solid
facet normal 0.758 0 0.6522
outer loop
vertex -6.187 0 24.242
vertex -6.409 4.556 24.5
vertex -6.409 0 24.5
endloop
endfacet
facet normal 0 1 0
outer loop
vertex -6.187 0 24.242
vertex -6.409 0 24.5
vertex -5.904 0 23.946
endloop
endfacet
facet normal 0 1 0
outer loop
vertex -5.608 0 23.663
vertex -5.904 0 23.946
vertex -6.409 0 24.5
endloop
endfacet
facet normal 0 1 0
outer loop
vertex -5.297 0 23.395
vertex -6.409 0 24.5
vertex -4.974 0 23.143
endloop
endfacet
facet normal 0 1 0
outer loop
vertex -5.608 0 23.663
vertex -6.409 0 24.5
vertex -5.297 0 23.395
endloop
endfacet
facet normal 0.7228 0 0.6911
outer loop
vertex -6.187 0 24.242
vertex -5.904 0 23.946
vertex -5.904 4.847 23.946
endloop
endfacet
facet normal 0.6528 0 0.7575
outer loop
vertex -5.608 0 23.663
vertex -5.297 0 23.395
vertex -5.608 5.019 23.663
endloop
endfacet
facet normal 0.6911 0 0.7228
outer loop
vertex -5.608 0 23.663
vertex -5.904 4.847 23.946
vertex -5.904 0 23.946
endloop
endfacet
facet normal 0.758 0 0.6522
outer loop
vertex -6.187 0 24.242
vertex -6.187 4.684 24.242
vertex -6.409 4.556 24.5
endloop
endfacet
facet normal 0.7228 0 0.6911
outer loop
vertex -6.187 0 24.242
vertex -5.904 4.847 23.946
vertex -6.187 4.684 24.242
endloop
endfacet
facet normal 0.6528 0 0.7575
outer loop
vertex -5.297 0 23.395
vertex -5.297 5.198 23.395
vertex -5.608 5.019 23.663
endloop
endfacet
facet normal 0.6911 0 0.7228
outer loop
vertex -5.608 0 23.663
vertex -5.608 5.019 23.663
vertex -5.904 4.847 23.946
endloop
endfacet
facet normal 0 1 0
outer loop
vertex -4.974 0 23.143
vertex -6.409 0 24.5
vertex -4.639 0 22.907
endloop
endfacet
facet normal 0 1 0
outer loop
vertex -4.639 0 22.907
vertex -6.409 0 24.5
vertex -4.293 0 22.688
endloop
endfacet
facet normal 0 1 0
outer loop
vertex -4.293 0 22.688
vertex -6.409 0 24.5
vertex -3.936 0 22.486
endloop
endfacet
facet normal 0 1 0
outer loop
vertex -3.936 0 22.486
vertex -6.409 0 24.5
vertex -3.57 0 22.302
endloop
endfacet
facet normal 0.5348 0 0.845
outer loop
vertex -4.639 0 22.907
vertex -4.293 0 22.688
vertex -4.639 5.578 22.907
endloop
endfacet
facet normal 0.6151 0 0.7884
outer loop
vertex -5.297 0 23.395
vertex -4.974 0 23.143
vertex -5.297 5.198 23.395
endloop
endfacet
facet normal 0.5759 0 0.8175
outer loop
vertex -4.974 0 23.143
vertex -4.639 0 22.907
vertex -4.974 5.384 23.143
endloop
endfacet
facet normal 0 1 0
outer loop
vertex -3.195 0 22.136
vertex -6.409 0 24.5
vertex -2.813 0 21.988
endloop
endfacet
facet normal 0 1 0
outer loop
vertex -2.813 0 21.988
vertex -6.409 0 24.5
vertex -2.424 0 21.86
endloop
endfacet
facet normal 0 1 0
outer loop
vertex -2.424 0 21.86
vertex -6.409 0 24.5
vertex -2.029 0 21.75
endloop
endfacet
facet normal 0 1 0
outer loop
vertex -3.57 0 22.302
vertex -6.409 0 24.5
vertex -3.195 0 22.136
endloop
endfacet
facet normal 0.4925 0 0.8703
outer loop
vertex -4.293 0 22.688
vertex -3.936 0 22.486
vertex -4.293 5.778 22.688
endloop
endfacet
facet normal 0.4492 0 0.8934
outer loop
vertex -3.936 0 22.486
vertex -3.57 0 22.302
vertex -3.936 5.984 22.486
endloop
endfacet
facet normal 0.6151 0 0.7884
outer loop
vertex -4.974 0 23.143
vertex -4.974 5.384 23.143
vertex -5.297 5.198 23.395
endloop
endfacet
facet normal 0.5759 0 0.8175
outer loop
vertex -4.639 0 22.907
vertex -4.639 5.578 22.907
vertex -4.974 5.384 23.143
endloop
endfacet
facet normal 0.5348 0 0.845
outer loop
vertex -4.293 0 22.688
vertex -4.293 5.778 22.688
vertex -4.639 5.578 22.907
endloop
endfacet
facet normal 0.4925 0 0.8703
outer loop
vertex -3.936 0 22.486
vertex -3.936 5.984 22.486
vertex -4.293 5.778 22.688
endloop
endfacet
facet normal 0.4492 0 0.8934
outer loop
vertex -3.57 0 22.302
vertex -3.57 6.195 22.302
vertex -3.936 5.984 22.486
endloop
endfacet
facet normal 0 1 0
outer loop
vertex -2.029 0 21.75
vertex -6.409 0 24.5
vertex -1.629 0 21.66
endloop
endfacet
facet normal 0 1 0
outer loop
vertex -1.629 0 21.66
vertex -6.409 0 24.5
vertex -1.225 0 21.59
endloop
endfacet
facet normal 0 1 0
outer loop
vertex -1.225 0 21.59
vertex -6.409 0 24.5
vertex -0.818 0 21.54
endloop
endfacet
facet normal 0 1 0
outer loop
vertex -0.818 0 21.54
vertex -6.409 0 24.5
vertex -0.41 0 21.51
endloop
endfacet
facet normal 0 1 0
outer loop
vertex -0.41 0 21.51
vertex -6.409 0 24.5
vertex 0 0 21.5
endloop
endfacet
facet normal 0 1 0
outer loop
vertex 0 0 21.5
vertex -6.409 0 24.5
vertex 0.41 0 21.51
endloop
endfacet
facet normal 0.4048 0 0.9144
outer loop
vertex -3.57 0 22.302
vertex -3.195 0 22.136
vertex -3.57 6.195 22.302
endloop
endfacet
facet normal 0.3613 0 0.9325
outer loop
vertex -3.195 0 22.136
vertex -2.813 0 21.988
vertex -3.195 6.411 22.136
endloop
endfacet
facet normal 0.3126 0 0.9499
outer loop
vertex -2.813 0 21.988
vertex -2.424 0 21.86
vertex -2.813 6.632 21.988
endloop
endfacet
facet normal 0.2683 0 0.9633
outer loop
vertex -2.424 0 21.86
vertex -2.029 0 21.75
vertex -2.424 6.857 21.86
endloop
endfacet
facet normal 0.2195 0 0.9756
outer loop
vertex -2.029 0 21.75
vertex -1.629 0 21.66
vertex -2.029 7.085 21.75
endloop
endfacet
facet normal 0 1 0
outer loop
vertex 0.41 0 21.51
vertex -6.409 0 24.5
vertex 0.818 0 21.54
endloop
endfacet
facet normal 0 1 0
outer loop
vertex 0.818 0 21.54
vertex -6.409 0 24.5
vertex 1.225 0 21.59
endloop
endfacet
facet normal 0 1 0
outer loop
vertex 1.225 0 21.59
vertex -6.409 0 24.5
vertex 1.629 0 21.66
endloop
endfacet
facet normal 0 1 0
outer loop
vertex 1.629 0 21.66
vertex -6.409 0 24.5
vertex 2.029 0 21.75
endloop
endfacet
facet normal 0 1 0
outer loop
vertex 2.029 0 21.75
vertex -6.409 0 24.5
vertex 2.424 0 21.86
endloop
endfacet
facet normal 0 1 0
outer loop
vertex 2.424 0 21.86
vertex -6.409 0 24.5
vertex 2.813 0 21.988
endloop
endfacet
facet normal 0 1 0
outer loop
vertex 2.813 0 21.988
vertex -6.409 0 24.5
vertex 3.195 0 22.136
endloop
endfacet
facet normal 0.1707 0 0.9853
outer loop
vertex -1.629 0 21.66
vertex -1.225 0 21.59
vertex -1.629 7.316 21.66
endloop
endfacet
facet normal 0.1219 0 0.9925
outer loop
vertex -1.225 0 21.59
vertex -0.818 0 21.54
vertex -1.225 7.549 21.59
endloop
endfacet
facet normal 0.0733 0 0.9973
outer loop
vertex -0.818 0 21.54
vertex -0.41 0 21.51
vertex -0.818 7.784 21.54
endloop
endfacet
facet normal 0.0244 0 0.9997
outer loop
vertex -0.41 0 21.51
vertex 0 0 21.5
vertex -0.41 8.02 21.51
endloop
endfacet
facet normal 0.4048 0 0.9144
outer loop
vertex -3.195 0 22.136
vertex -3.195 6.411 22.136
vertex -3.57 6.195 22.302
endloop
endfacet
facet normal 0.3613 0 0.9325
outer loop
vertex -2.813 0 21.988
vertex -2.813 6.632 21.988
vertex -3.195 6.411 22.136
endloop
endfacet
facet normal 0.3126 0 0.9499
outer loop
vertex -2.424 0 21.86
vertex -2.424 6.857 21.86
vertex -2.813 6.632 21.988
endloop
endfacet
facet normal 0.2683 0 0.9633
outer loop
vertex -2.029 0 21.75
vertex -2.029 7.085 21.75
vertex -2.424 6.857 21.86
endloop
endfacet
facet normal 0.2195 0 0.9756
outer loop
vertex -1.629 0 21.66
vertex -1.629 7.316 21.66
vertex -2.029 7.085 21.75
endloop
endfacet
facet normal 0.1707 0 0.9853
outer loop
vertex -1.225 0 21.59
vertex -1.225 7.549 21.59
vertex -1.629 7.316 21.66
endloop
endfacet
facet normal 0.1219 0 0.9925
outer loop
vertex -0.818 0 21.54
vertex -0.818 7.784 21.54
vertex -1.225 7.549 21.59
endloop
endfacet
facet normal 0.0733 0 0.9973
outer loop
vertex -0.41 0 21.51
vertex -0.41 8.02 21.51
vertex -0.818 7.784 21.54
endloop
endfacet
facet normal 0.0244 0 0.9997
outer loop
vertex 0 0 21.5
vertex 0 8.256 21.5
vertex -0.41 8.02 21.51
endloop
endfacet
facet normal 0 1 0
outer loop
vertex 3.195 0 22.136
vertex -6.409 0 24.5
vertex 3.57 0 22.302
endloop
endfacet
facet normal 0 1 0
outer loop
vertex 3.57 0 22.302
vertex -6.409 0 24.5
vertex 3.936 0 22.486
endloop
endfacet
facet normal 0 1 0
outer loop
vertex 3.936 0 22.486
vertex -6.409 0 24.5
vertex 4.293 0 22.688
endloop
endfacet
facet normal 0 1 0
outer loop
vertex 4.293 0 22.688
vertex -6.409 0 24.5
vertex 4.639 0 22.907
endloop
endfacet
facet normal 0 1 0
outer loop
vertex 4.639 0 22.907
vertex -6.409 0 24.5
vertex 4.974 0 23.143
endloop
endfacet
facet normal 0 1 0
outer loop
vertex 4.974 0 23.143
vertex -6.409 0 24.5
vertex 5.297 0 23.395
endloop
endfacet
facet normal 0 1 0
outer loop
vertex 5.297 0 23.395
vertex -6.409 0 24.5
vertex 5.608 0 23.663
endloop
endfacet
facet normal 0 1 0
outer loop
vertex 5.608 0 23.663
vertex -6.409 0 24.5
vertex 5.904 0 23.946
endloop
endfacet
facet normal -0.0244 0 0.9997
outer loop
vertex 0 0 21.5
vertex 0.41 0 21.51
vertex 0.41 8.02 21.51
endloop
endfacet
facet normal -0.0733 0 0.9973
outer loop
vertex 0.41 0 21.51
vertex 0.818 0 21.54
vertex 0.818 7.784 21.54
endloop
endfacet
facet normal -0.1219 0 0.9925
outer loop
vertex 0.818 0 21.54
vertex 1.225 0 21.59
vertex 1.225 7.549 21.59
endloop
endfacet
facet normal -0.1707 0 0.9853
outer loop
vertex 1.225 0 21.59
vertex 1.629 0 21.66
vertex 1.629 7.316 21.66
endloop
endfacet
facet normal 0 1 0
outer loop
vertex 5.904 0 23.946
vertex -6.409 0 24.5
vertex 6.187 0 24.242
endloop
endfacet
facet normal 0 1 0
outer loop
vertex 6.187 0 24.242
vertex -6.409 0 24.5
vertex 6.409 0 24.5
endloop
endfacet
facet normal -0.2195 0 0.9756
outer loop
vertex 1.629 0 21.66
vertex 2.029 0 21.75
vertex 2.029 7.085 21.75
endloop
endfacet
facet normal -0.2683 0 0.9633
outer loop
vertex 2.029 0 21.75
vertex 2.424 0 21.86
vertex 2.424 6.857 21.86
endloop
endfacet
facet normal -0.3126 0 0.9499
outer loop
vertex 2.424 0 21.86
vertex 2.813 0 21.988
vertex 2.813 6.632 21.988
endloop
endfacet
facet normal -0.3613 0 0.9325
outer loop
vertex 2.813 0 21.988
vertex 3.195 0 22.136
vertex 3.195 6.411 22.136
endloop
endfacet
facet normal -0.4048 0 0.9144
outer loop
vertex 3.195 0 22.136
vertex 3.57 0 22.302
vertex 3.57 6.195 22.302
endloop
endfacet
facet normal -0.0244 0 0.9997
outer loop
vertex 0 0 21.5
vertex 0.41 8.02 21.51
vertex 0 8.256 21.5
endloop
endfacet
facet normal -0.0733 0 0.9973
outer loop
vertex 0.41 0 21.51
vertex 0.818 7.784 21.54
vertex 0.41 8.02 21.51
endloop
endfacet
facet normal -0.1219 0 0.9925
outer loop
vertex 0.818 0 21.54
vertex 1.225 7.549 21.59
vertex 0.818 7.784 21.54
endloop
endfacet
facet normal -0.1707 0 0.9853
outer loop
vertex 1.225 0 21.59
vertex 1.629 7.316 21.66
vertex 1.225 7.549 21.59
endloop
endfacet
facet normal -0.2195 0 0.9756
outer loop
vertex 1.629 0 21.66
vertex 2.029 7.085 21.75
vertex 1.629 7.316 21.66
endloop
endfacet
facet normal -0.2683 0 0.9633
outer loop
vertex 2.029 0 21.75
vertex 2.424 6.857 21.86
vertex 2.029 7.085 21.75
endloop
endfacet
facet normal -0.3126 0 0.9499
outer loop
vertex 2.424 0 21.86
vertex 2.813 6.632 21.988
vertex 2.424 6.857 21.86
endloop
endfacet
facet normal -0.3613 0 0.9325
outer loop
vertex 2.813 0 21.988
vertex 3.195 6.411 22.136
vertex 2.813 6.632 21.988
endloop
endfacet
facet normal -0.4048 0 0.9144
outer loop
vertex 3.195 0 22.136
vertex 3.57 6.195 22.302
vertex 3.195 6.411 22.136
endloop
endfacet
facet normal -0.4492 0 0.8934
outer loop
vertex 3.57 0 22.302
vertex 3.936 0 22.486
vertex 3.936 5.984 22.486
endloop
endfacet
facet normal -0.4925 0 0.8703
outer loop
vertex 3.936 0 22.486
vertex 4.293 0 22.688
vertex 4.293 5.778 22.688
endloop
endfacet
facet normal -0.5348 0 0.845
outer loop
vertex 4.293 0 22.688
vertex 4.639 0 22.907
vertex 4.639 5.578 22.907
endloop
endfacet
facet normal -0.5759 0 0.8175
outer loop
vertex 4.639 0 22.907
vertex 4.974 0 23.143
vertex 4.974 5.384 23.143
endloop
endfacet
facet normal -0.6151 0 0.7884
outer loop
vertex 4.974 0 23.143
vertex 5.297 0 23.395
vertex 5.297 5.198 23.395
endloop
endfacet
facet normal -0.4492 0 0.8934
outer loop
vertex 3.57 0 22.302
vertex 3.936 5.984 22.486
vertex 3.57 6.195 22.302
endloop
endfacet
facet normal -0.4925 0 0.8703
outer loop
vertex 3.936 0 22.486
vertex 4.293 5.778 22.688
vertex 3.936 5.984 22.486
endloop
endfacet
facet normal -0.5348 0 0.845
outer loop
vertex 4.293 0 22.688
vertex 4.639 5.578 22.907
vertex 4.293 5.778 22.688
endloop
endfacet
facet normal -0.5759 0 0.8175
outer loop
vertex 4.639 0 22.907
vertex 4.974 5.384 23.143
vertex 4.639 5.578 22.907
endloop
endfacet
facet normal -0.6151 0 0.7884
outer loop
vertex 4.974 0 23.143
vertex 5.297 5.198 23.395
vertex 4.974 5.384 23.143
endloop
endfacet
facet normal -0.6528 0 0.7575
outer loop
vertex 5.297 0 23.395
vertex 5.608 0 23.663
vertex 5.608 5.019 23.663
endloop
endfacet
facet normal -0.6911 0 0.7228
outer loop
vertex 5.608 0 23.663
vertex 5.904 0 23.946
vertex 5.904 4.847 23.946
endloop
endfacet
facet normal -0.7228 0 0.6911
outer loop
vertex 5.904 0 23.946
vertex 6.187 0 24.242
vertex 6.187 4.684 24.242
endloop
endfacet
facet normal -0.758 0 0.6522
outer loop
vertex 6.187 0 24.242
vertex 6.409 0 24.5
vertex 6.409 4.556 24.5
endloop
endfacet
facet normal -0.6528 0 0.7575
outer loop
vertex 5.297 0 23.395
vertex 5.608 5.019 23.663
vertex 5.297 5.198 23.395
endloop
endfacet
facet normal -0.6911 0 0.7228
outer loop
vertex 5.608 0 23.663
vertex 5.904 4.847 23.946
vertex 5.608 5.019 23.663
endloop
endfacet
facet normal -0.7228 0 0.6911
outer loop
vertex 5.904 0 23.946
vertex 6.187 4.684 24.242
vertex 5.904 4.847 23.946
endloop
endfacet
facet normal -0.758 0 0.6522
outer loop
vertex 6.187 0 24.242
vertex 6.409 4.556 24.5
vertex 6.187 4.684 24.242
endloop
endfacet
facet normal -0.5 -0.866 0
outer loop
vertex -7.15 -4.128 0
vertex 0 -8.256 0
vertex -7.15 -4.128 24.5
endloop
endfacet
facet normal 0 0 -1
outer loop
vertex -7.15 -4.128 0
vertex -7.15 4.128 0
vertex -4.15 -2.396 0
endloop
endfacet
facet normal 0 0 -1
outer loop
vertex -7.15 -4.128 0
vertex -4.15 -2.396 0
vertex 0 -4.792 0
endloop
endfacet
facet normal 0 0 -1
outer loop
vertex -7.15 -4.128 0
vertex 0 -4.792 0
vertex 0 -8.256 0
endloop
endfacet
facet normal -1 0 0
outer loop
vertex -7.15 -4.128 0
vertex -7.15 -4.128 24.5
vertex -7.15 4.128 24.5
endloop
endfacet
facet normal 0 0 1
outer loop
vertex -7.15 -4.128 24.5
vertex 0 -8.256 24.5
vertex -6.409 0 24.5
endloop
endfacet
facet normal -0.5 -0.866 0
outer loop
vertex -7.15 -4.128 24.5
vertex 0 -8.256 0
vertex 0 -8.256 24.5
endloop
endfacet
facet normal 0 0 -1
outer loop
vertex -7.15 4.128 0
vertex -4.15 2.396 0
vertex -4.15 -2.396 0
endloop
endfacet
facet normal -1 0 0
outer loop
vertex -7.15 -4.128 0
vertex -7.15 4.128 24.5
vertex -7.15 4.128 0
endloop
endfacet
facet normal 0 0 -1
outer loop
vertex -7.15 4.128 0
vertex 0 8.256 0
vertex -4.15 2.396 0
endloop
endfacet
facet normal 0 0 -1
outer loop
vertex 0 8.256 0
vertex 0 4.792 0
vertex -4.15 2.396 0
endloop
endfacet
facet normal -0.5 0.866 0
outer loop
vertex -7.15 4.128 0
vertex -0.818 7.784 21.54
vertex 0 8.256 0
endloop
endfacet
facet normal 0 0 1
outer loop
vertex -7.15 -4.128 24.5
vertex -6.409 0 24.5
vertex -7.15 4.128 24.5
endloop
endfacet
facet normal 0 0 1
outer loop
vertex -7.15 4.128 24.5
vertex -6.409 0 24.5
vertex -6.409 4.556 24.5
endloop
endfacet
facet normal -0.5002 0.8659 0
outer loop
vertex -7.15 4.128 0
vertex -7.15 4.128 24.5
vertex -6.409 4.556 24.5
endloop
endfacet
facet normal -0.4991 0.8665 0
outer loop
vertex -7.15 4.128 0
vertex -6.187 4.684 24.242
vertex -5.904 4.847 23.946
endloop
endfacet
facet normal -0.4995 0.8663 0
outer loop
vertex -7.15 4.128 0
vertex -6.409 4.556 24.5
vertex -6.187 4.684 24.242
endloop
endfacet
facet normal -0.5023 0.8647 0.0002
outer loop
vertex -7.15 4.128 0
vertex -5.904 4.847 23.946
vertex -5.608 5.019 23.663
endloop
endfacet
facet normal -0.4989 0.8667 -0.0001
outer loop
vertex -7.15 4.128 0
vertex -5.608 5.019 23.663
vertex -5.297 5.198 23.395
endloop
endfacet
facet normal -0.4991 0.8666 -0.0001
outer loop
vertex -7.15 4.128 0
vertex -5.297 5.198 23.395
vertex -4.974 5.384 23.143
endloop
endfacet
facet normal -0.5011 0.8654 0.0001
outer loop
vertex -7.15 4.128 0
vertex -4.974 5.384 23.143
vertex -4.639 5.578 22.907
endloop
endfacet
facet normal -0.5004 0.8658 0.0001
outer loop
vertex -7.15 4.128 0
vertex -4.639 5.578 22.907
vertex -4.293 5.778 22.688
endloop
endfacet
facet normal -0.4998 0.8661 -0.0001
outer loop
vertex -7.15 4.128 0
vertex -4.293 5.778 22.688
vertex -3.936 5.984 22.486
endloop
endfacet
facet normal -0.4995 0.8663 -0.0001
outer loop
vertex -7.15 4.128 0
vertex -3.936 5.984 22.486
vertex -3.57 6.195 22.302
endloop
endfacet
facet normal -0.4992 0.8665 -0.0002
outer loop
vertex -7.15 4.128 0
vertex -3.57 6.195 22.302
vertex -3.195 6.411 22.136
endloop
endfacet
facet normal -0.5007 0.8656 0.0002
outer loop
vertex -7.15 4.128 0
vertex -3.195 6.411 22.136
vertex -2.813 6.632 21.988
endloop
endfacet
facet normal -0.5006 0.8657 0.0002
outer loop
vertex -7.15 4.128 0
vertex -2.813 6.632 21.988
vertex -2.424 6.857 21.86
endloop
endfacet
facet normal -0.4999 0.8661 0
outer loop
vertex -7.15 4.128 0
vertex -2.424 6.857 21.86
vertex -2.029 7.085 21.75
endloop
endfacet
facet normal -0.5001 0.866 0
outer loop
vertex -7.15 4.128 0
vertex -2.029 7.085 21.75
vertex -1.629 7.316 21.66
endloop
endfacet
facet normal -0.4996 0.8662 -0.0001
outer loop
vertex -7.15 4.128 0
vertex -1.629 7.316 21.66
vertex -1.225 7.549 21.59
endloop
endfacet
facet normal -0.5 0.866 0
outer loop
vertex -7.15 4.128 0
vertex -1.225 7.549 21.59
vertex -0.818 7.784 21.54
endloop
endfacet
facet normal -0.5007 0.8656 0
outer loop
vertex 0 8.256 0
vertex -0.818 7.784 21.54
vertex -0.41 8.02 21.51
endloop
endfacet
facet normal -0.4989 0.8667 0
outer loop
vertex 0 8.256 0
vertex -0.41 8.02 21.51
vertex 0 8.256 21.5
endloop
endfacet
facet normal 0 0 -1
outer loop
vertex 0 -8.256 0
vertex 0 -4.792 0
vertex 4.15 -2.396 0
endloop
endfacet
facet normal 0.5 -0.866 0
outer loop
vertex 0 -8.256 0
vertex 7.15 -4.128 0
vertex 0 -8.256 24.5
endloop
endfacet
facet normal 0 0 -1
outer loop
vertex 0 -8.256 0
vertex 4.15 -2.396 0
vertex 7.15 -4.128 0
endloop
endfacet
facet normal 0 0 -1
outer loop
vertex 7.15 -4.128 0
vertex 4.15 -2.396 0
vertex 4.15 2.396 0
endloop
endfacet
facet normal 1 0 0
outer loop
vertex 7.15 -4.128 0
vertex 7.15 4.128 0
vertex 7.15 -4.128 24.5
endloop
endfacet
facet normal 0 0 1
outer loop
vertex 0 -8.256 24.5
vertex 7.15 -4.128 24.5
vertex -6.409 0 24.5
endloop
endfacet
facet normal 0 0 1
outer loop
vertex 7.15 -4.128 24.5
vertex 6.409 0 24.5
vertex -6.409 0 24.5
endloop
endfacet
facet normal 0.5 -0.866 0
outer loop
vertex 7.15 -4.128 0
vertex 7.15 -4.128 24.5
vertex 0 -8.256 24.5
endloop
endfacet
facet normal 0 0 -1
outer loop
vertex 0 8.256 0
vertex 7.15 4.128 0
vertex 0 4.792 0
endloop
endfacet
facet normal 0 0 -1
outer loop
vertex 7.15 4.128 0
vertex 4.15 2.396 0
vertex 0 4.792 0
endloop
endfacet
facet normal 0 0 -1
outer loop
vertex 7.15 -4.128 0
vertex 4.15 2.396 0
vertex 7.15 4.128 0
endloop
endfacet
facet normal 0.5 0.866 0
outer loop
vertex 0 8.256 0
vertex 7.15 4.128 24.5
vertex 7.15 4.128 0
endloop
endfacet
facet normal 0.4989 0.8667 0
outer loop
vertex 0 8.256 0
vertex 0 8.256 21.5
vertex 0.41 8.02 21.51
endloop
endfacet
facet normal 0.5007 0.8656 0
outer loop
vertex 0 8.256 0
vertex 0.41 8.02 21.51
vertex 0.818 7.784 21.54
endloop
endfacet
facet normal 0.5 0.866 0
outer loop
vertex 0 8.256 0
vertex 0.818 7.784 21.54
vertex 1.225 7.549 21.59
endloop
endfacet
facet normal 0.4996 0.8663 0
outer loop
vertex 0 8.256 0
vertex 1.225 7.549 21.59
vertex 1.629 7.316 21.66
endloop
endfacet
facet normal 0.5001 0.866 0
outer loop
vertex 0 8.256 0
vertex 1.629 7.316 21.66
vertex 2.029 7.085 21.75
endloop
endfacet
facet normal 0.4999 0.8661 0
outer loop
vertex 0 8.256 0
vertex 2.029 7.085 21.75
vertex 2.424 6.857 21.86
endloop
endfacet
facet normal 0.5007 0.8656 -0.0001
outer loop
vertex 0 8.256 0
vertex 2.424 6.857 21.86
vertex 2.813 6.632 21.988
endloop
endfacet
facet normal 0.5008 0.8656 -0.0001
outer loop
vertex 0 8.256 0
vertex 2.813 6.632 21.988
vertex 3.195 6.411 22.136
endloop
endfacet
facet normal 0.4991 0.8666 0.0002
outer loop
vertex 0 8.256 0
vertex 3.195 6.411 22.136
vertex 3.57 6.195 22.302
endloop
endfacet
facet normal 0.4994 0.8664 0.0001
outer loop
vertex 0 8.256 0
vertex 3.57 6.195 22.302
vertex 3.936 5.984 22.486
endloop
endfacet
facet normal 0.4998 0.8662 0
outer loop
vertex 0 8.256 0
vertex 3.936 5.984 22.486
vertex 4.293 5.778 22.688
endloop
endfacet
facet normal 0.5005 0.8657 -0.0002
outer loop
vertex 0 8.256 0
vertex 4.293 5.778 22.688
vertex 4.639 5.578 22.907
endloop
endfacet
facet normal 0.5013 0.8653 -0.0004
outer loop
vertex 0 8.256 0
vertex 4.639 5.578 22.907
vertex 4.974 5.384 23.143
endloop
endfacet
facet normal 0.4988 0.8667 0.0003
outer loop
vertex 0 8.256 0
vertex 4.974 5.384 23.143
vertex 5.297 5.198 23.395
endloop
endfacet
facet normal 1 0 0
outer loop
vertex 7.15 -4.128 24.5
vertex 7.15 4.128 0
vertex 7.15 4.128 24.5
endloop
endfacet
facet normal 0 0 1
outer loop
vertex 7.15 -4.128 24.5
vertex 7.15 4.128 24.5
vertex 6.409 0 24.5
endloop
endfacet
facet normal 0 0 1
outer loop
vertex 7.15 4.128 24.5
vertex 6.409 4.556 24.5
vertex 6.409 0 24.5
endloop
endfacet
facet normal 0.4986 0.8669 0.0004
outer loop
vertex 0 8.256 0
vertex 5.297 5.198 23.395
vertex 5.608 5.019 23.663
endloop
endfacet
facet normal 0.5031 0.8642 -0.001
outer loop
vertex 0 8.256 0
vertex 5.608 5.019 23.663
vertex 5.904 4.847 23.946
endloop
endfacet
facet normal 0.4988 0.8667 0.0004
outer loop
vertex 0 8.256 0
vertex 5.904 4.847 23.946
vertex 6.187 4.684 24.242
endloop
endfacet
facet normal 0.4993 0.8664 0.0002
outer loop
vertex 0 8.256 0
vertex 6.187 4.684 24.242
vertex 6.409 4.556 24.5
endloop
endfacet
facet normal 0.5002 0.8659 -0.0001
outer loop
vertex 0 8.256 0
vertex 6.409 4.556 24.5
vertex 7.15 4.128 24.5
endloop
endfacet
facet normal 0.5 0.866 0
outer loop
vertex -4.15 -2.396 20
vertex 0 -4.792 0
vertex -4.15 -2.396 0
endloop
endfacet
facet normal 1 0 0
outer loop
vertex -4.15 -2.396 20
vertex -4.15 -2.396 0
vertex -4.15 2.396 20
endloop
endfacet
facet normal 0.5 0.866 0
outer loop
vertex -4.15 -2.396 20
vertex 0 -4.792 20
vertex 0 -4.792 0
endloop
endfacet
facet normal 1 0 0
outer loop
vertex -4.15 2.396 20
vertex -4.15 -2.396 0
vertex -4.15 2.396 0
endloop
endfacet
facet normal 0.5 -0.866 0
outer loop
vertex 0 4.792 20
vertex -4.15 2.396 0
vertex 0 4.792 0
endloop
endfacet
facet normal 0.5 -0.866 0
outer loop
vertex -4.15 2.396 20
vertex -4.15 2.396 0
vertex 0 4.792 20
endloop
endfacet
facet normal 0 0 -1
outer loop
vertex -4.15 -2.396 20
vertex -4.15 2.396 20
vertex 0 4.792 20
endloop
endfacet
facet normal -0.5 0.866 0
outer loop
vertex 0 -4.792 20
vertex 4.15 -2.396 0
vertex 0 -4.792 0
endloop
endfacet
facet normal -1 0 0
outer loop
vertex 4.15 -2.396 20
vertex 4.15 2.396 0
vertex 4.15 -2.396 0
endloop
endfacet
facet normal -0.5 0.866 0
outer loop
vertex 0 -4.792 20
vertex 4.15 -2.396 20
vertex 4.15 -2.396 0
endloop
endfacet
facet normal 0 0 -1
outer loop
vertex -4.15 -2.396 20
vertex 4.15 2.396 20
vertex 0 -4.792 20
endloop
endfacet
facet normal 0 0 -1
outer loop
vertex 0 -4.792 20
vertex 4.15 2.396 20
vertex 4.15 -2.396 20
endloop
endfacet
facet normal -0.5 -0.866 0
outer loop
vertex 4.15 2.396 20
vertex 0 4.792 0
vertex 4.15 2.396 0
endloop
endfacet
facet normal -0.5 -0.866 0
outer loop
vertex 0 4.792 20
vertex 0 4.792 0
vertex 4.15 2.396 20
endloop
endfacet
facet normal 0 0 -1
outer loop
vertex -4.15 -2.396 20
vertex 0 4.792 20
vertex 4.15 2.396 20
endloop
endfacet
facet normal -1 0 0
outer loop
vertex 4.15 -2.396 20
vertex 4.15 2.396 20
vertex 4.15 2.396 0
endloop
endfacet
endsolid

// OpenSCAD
// file: laser_mount.scad
include <config.scad>


module laser_mount() {
	difference() {
		cylinder(laser_length_2, laser_sleeve_radius, laser_sleeve_radius);
		cylinder(laser_length_0, laser_radius_0, laser_radius_0);
		cylinder(laser_length_1, laser_radius_1, laser_radius_1);
		cylinder(laser_length_2, laser_radius_2, laser_radius_2);
	}
}

laser_mount();
// file: config.scad
$fn = 128;

laser_length_0 = 6;
laser_length_1 = 10;
laser_length_2 = 14.5;
laser_radius_0 = 10.7 / 2;
laser_radius_1 = 9.5 / 2;
laser_radius_2 = 7.7 / 2;

laser_sleeve_thickness = 3;
laser_sleeve_radius = laser_sleeve_thickness + laser_radius_0;

laser_inset = (laser_sleeve_radius - laser_radius_0) / 2;

bolt_hex_width = 8.3;
bolt_hex_length = 20;
bolt_mount_thickness = 3; 
bolt_mount_width = bolt_hex_width + bolt_mount_thickness * 2;
bolt_cap = 3;
 
// main file
include <config.scad>

use <laser_mount.scad>

module hexagon(width) {
	diagonal = width * tan(30) + (width / 2) / cos(30);
	polygon(points = [
		[0, diagonal / 2],
		[width / 2,  width * tan(30) / 2],
		[width / 2, -width * tan(30) / 2],
		[0, -diagonal / 2],
		[-width / 2, -width * tan(30) / 2],
		[-width / 2,  width * tan(30) / 2],
	]);
}

module bolt_mount() {
	difference() {
		linear_extrude(bolt_hex_length + bolt_cap + laser_inset) hexagon(bolt_mount_width);	
		linear_extrude(bolt_hex_length)            hexagon(bolt_hex_width);
		translate([0, laser_length_2, bolt_hex_length + bolt_cap + laser_sleeve_radius - laser_inset]) rotate([90, 0, 0])
			laser_mount();
	}
}

bolt_mount();
